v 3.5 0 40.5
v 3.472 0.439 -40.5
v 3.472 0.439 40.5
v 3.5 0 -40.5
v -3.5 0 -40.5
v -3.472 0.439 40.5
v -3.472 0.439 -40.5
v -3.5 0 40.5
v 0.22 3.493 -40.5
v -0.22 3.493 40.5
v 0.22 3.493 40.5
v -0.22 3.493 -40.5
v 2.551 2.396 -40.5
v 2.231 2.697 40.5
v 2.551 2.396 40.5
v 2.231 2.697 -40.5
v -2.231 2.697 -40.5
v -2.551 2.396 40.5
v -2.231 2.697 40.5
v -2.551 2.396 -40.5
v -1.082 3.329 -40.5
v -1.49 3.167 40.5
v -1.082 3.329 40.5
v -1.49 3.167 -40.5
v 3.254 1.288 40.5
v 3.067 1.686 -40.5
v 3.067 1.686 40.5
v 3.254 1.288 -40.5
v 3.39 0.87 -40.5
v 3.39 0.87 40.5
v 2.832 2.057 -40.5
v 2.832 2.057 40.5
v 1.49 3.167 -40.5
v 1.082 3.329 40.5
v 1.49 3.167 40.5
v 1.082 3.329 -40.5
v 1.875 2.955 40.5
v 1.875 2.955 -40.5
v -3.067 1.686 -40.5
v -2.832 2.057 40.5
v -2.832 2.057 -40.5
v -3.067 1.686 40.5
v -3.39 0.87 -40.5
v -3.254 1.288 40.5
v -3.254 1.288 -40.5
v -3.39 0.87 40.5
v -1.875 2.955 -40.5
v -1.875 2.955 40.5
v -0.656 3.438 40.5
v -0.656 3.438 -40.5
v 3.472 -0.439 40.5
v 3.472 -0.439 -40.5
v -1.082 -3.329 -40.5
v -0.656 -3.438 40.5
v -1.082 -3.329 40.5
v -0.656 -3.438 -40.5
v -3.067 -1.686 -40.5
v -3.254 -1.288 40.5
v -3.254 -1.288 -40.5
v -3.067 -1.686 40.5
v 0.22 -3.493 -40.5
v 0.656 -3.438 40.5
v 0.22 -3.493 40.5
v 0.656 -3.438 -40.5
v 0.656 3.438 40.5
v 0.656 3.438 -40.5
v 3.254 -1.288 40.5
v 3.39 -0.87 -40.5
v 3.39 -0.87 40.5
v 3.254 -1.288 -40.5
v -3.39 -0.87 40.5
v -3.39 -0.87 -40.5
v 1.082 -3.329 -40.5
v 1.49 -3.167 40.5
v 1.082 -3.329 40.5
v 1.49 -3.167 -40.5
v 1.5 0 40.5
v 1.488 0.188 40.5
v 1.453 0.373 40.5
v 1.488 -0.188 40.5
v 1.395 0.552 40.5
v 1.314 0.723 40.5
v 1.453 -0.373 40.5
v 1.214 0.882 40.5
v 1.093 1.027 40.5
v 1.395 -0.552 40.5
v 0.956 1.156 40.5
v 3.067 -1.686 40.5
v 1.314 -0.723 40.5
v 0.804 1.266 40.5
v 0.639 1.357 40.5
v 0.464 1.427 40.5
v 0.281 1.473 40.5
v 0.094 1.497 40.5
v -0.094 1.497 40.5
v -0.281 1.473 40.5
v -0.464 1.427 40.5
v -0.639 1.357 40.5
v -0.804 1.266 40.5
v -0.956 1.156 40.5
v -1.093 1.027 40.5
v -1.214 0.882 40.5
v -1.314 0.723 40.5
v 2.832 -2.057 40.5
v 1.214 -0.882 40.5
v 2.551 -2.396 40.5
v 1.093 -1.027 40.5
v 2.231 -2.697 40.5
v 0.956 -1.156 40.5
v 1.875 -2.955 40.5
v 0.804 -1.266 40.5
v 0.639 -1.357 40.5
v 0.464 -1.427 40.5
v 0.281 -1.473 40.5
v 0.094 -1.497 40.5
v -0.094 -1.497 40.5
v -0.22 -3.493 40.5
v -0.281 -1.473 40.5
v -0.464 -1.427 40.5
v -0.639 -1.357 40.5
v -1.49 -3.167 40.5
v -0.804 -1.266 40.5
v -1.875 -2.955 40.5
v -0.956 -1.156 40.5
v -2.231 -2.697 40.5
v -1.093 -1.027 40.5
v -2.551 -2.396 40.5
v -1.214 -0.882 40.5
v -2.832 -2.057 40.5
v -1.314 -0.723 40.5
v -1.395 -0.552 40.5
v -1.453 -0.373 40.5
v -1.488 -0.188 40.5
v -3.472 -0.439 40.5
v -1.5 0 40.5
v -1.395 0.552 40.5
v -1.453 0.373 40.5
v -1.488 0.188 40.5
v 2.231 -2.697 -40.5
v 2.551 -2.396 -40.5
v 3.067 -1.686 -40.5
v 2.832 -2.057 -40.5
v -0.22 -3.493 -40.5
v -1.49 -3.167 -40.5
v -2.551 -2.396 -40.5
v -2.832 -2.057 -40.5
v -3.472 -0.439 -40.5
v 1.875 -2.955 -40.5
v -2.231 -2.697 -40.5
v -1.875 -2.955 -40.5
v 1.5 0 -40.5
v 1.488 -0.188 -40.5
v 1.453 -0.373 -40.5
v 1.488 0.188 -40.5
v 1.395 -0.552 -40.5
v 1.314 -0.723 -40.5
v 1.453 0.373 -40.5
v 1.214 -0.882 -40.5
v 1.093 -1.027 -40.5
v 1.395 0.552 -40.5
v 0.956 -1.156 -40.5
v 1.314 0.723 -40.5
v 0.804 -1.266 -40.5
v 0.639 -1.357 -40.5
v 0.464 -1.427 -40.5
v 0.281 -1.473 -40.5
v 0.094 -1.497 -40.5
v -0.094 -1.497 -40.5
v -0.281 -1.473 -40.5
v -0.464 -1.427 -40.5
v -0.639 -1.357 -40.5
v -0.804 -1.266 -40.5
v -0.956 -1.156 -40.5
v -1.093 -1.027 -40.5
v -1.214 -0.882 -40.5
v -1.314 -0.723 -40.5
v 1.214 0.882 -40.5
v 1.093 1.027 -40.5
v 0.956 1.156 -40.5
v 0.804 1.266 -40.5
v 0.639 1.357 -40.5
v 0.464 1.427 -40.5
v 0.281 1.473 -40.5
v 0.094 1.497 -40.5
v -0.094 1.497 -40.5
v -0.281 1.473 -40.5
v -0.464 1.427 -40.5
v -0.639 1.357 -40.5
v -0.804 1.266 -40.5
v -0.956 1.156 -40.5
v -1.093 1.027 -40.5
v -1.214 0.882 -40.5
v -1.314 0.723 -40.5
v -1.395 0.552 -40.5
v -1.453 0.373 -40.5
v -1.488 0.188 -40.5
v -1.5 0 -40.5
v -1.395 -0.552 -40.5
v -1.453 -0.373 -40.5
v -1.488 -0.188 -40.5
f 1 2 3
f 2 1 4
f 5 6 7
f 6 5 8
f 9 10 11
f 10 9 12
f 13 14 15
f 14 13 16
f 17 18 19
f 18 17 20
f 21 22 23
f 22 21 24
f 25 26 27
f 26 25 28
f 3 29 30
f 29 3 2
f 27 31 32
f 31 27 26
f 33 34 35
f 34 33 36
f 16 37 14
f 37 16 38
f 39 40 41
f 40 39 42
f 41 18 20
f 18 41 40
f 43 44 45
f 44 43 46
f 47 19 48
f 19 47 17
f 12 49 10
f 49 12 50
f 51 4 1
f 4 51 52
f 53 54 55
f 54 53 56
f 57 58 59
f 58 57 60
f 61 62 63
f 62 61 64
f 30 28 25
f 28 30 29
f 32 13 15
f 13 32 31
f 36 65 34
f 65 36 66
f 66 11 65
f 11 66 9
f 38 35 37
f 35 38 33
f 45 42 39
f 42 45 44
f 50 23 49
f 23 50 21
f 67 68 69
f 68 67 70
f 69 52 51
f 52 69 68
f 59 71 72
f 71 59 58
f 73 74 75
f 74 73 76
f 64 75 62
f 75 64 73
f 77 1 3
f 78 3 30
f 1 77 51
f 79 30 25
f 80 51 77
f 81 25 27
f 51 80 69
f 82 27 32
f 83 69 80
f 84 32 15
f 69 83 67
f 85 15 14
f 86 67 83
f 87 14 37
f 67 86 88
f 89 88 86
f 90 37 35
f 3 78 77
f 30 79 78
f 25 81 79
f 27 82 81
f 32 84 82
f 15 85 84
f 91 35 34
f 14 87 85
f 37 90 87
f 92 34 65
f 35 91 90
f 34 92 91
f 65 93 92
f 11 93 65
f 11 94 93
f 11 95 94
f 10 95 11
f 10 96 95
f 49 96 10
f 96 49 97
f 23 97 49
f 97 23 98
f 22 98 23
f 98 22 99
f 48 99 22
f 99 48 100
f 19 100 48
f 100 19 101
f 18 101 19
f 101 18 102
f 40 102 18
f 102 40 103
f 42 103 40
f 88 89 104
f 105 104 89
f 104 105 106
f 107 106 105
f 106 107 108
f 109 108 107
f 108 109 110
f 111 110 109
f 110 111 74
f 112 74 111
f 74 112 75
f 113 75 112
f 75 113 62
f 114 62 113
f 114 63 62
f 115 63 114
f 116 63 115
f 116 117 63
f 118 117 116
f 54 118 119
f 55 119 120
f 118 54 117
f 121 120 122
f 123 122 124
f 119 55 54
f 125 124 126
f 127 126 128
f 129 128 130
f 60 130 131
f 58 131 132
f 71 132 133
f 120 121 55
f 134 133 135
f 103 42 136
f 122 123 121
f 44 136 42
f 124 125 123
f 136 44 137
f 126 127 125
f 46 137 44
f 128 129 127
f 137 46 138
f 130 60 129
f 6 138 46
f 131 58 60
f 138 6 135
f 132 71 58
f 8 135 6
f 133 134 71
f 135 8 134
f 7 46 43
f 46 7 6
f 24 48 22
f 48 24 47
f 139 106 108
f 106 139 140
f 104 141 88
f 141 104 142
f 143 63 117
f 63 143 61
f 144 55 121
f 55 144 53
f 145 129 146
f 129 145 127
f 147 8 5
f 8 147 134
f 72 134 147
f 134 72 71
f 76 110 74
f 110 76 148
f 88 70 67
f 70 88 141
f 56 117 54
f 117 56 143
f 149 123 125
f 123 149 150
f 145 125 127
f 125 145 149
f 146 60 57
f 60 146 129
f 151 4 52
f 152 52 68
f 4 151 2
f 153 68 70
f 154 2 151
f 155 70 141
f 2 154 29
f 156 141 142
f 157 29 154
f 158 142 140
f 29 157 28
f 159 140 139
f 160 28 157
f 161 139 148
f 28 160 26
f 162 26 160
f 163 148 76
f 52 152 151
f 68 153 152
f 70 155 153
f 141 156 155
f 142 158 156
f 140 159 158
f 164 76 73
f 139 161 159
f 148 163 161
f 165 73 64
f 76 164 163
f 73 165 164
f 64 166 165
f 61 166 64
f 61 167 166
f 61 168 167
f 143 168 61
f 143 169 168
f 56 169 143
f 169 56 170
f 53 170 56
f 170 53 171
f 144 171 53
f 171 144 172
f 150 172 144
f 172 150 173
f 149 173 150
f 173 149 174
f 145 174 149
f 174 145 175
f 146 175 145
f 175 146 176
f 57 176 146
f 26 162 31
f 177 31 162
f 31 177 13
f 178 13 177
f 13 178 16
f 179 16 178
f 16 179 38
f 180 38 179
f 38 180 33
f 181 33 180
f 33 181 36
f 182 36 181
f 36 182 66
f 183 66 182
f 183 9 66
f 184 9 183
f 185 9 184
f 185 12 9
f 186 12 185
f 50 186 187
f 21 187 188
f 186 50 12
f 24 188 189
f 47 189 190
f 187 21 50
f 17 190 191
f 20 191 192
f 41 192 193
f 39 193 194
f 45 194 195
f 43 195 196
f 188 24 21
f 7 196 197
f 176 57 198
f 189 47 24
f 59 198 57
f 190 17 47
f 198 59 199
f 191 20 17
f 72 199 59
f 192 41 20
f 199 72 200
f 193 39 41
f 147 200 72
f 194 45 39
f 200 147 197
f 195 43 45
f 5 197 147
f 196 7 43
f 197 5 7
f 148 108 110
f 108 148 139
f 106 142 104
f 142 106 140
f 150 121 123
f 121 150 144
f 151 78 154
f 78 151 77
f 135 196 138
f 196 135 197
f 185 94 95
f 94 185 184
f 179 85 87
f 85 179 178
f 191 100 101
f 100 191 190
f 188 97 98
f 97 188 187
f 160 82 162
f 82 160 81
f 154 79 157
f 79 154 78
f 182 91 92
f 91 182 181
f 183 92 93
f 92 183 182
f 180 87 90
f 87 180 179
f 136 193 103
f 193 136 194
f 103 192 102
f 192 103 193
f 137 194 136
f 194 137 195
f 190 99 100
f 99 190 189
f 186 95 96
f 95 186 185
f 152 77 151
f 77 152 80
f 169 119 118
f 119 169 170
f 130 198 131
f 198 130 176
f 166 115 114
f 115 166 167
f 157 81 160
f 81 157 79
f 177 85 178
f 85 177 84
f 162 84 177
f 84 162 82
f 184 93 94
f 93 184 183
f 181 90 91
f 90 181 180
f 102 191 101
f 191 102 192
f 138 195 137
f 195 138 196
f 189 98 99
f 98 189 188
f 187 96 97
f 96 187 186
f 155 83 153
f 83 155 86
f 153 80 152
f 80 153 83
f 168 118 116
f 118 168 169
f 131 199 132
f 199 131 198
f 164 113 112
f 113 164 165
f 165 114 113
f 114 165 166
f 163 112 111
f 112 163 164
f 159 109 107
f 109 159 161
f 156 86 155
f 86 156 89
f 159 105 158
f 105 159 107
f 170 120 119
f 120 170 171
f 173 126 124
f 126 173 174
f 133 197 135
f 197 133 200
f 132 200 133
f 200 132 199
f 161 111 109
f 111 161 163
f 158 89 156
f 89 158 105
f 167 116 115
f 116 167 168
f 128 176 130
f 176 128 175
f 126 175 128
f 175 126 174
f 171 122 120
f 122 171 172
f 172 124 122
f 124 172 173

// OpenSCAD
$fn = 50;


difference() {
	union() {
		translate(v = [0, 0, -40.5000000000]) {
			cylinder(h = 81, r = 3.5000000000);
		}
	}
	union() {
		translate(v = [0, 0, -100.0000000000]) {
			cylinder(h = 200, r = 1.5000000000);
		}
	}
}
